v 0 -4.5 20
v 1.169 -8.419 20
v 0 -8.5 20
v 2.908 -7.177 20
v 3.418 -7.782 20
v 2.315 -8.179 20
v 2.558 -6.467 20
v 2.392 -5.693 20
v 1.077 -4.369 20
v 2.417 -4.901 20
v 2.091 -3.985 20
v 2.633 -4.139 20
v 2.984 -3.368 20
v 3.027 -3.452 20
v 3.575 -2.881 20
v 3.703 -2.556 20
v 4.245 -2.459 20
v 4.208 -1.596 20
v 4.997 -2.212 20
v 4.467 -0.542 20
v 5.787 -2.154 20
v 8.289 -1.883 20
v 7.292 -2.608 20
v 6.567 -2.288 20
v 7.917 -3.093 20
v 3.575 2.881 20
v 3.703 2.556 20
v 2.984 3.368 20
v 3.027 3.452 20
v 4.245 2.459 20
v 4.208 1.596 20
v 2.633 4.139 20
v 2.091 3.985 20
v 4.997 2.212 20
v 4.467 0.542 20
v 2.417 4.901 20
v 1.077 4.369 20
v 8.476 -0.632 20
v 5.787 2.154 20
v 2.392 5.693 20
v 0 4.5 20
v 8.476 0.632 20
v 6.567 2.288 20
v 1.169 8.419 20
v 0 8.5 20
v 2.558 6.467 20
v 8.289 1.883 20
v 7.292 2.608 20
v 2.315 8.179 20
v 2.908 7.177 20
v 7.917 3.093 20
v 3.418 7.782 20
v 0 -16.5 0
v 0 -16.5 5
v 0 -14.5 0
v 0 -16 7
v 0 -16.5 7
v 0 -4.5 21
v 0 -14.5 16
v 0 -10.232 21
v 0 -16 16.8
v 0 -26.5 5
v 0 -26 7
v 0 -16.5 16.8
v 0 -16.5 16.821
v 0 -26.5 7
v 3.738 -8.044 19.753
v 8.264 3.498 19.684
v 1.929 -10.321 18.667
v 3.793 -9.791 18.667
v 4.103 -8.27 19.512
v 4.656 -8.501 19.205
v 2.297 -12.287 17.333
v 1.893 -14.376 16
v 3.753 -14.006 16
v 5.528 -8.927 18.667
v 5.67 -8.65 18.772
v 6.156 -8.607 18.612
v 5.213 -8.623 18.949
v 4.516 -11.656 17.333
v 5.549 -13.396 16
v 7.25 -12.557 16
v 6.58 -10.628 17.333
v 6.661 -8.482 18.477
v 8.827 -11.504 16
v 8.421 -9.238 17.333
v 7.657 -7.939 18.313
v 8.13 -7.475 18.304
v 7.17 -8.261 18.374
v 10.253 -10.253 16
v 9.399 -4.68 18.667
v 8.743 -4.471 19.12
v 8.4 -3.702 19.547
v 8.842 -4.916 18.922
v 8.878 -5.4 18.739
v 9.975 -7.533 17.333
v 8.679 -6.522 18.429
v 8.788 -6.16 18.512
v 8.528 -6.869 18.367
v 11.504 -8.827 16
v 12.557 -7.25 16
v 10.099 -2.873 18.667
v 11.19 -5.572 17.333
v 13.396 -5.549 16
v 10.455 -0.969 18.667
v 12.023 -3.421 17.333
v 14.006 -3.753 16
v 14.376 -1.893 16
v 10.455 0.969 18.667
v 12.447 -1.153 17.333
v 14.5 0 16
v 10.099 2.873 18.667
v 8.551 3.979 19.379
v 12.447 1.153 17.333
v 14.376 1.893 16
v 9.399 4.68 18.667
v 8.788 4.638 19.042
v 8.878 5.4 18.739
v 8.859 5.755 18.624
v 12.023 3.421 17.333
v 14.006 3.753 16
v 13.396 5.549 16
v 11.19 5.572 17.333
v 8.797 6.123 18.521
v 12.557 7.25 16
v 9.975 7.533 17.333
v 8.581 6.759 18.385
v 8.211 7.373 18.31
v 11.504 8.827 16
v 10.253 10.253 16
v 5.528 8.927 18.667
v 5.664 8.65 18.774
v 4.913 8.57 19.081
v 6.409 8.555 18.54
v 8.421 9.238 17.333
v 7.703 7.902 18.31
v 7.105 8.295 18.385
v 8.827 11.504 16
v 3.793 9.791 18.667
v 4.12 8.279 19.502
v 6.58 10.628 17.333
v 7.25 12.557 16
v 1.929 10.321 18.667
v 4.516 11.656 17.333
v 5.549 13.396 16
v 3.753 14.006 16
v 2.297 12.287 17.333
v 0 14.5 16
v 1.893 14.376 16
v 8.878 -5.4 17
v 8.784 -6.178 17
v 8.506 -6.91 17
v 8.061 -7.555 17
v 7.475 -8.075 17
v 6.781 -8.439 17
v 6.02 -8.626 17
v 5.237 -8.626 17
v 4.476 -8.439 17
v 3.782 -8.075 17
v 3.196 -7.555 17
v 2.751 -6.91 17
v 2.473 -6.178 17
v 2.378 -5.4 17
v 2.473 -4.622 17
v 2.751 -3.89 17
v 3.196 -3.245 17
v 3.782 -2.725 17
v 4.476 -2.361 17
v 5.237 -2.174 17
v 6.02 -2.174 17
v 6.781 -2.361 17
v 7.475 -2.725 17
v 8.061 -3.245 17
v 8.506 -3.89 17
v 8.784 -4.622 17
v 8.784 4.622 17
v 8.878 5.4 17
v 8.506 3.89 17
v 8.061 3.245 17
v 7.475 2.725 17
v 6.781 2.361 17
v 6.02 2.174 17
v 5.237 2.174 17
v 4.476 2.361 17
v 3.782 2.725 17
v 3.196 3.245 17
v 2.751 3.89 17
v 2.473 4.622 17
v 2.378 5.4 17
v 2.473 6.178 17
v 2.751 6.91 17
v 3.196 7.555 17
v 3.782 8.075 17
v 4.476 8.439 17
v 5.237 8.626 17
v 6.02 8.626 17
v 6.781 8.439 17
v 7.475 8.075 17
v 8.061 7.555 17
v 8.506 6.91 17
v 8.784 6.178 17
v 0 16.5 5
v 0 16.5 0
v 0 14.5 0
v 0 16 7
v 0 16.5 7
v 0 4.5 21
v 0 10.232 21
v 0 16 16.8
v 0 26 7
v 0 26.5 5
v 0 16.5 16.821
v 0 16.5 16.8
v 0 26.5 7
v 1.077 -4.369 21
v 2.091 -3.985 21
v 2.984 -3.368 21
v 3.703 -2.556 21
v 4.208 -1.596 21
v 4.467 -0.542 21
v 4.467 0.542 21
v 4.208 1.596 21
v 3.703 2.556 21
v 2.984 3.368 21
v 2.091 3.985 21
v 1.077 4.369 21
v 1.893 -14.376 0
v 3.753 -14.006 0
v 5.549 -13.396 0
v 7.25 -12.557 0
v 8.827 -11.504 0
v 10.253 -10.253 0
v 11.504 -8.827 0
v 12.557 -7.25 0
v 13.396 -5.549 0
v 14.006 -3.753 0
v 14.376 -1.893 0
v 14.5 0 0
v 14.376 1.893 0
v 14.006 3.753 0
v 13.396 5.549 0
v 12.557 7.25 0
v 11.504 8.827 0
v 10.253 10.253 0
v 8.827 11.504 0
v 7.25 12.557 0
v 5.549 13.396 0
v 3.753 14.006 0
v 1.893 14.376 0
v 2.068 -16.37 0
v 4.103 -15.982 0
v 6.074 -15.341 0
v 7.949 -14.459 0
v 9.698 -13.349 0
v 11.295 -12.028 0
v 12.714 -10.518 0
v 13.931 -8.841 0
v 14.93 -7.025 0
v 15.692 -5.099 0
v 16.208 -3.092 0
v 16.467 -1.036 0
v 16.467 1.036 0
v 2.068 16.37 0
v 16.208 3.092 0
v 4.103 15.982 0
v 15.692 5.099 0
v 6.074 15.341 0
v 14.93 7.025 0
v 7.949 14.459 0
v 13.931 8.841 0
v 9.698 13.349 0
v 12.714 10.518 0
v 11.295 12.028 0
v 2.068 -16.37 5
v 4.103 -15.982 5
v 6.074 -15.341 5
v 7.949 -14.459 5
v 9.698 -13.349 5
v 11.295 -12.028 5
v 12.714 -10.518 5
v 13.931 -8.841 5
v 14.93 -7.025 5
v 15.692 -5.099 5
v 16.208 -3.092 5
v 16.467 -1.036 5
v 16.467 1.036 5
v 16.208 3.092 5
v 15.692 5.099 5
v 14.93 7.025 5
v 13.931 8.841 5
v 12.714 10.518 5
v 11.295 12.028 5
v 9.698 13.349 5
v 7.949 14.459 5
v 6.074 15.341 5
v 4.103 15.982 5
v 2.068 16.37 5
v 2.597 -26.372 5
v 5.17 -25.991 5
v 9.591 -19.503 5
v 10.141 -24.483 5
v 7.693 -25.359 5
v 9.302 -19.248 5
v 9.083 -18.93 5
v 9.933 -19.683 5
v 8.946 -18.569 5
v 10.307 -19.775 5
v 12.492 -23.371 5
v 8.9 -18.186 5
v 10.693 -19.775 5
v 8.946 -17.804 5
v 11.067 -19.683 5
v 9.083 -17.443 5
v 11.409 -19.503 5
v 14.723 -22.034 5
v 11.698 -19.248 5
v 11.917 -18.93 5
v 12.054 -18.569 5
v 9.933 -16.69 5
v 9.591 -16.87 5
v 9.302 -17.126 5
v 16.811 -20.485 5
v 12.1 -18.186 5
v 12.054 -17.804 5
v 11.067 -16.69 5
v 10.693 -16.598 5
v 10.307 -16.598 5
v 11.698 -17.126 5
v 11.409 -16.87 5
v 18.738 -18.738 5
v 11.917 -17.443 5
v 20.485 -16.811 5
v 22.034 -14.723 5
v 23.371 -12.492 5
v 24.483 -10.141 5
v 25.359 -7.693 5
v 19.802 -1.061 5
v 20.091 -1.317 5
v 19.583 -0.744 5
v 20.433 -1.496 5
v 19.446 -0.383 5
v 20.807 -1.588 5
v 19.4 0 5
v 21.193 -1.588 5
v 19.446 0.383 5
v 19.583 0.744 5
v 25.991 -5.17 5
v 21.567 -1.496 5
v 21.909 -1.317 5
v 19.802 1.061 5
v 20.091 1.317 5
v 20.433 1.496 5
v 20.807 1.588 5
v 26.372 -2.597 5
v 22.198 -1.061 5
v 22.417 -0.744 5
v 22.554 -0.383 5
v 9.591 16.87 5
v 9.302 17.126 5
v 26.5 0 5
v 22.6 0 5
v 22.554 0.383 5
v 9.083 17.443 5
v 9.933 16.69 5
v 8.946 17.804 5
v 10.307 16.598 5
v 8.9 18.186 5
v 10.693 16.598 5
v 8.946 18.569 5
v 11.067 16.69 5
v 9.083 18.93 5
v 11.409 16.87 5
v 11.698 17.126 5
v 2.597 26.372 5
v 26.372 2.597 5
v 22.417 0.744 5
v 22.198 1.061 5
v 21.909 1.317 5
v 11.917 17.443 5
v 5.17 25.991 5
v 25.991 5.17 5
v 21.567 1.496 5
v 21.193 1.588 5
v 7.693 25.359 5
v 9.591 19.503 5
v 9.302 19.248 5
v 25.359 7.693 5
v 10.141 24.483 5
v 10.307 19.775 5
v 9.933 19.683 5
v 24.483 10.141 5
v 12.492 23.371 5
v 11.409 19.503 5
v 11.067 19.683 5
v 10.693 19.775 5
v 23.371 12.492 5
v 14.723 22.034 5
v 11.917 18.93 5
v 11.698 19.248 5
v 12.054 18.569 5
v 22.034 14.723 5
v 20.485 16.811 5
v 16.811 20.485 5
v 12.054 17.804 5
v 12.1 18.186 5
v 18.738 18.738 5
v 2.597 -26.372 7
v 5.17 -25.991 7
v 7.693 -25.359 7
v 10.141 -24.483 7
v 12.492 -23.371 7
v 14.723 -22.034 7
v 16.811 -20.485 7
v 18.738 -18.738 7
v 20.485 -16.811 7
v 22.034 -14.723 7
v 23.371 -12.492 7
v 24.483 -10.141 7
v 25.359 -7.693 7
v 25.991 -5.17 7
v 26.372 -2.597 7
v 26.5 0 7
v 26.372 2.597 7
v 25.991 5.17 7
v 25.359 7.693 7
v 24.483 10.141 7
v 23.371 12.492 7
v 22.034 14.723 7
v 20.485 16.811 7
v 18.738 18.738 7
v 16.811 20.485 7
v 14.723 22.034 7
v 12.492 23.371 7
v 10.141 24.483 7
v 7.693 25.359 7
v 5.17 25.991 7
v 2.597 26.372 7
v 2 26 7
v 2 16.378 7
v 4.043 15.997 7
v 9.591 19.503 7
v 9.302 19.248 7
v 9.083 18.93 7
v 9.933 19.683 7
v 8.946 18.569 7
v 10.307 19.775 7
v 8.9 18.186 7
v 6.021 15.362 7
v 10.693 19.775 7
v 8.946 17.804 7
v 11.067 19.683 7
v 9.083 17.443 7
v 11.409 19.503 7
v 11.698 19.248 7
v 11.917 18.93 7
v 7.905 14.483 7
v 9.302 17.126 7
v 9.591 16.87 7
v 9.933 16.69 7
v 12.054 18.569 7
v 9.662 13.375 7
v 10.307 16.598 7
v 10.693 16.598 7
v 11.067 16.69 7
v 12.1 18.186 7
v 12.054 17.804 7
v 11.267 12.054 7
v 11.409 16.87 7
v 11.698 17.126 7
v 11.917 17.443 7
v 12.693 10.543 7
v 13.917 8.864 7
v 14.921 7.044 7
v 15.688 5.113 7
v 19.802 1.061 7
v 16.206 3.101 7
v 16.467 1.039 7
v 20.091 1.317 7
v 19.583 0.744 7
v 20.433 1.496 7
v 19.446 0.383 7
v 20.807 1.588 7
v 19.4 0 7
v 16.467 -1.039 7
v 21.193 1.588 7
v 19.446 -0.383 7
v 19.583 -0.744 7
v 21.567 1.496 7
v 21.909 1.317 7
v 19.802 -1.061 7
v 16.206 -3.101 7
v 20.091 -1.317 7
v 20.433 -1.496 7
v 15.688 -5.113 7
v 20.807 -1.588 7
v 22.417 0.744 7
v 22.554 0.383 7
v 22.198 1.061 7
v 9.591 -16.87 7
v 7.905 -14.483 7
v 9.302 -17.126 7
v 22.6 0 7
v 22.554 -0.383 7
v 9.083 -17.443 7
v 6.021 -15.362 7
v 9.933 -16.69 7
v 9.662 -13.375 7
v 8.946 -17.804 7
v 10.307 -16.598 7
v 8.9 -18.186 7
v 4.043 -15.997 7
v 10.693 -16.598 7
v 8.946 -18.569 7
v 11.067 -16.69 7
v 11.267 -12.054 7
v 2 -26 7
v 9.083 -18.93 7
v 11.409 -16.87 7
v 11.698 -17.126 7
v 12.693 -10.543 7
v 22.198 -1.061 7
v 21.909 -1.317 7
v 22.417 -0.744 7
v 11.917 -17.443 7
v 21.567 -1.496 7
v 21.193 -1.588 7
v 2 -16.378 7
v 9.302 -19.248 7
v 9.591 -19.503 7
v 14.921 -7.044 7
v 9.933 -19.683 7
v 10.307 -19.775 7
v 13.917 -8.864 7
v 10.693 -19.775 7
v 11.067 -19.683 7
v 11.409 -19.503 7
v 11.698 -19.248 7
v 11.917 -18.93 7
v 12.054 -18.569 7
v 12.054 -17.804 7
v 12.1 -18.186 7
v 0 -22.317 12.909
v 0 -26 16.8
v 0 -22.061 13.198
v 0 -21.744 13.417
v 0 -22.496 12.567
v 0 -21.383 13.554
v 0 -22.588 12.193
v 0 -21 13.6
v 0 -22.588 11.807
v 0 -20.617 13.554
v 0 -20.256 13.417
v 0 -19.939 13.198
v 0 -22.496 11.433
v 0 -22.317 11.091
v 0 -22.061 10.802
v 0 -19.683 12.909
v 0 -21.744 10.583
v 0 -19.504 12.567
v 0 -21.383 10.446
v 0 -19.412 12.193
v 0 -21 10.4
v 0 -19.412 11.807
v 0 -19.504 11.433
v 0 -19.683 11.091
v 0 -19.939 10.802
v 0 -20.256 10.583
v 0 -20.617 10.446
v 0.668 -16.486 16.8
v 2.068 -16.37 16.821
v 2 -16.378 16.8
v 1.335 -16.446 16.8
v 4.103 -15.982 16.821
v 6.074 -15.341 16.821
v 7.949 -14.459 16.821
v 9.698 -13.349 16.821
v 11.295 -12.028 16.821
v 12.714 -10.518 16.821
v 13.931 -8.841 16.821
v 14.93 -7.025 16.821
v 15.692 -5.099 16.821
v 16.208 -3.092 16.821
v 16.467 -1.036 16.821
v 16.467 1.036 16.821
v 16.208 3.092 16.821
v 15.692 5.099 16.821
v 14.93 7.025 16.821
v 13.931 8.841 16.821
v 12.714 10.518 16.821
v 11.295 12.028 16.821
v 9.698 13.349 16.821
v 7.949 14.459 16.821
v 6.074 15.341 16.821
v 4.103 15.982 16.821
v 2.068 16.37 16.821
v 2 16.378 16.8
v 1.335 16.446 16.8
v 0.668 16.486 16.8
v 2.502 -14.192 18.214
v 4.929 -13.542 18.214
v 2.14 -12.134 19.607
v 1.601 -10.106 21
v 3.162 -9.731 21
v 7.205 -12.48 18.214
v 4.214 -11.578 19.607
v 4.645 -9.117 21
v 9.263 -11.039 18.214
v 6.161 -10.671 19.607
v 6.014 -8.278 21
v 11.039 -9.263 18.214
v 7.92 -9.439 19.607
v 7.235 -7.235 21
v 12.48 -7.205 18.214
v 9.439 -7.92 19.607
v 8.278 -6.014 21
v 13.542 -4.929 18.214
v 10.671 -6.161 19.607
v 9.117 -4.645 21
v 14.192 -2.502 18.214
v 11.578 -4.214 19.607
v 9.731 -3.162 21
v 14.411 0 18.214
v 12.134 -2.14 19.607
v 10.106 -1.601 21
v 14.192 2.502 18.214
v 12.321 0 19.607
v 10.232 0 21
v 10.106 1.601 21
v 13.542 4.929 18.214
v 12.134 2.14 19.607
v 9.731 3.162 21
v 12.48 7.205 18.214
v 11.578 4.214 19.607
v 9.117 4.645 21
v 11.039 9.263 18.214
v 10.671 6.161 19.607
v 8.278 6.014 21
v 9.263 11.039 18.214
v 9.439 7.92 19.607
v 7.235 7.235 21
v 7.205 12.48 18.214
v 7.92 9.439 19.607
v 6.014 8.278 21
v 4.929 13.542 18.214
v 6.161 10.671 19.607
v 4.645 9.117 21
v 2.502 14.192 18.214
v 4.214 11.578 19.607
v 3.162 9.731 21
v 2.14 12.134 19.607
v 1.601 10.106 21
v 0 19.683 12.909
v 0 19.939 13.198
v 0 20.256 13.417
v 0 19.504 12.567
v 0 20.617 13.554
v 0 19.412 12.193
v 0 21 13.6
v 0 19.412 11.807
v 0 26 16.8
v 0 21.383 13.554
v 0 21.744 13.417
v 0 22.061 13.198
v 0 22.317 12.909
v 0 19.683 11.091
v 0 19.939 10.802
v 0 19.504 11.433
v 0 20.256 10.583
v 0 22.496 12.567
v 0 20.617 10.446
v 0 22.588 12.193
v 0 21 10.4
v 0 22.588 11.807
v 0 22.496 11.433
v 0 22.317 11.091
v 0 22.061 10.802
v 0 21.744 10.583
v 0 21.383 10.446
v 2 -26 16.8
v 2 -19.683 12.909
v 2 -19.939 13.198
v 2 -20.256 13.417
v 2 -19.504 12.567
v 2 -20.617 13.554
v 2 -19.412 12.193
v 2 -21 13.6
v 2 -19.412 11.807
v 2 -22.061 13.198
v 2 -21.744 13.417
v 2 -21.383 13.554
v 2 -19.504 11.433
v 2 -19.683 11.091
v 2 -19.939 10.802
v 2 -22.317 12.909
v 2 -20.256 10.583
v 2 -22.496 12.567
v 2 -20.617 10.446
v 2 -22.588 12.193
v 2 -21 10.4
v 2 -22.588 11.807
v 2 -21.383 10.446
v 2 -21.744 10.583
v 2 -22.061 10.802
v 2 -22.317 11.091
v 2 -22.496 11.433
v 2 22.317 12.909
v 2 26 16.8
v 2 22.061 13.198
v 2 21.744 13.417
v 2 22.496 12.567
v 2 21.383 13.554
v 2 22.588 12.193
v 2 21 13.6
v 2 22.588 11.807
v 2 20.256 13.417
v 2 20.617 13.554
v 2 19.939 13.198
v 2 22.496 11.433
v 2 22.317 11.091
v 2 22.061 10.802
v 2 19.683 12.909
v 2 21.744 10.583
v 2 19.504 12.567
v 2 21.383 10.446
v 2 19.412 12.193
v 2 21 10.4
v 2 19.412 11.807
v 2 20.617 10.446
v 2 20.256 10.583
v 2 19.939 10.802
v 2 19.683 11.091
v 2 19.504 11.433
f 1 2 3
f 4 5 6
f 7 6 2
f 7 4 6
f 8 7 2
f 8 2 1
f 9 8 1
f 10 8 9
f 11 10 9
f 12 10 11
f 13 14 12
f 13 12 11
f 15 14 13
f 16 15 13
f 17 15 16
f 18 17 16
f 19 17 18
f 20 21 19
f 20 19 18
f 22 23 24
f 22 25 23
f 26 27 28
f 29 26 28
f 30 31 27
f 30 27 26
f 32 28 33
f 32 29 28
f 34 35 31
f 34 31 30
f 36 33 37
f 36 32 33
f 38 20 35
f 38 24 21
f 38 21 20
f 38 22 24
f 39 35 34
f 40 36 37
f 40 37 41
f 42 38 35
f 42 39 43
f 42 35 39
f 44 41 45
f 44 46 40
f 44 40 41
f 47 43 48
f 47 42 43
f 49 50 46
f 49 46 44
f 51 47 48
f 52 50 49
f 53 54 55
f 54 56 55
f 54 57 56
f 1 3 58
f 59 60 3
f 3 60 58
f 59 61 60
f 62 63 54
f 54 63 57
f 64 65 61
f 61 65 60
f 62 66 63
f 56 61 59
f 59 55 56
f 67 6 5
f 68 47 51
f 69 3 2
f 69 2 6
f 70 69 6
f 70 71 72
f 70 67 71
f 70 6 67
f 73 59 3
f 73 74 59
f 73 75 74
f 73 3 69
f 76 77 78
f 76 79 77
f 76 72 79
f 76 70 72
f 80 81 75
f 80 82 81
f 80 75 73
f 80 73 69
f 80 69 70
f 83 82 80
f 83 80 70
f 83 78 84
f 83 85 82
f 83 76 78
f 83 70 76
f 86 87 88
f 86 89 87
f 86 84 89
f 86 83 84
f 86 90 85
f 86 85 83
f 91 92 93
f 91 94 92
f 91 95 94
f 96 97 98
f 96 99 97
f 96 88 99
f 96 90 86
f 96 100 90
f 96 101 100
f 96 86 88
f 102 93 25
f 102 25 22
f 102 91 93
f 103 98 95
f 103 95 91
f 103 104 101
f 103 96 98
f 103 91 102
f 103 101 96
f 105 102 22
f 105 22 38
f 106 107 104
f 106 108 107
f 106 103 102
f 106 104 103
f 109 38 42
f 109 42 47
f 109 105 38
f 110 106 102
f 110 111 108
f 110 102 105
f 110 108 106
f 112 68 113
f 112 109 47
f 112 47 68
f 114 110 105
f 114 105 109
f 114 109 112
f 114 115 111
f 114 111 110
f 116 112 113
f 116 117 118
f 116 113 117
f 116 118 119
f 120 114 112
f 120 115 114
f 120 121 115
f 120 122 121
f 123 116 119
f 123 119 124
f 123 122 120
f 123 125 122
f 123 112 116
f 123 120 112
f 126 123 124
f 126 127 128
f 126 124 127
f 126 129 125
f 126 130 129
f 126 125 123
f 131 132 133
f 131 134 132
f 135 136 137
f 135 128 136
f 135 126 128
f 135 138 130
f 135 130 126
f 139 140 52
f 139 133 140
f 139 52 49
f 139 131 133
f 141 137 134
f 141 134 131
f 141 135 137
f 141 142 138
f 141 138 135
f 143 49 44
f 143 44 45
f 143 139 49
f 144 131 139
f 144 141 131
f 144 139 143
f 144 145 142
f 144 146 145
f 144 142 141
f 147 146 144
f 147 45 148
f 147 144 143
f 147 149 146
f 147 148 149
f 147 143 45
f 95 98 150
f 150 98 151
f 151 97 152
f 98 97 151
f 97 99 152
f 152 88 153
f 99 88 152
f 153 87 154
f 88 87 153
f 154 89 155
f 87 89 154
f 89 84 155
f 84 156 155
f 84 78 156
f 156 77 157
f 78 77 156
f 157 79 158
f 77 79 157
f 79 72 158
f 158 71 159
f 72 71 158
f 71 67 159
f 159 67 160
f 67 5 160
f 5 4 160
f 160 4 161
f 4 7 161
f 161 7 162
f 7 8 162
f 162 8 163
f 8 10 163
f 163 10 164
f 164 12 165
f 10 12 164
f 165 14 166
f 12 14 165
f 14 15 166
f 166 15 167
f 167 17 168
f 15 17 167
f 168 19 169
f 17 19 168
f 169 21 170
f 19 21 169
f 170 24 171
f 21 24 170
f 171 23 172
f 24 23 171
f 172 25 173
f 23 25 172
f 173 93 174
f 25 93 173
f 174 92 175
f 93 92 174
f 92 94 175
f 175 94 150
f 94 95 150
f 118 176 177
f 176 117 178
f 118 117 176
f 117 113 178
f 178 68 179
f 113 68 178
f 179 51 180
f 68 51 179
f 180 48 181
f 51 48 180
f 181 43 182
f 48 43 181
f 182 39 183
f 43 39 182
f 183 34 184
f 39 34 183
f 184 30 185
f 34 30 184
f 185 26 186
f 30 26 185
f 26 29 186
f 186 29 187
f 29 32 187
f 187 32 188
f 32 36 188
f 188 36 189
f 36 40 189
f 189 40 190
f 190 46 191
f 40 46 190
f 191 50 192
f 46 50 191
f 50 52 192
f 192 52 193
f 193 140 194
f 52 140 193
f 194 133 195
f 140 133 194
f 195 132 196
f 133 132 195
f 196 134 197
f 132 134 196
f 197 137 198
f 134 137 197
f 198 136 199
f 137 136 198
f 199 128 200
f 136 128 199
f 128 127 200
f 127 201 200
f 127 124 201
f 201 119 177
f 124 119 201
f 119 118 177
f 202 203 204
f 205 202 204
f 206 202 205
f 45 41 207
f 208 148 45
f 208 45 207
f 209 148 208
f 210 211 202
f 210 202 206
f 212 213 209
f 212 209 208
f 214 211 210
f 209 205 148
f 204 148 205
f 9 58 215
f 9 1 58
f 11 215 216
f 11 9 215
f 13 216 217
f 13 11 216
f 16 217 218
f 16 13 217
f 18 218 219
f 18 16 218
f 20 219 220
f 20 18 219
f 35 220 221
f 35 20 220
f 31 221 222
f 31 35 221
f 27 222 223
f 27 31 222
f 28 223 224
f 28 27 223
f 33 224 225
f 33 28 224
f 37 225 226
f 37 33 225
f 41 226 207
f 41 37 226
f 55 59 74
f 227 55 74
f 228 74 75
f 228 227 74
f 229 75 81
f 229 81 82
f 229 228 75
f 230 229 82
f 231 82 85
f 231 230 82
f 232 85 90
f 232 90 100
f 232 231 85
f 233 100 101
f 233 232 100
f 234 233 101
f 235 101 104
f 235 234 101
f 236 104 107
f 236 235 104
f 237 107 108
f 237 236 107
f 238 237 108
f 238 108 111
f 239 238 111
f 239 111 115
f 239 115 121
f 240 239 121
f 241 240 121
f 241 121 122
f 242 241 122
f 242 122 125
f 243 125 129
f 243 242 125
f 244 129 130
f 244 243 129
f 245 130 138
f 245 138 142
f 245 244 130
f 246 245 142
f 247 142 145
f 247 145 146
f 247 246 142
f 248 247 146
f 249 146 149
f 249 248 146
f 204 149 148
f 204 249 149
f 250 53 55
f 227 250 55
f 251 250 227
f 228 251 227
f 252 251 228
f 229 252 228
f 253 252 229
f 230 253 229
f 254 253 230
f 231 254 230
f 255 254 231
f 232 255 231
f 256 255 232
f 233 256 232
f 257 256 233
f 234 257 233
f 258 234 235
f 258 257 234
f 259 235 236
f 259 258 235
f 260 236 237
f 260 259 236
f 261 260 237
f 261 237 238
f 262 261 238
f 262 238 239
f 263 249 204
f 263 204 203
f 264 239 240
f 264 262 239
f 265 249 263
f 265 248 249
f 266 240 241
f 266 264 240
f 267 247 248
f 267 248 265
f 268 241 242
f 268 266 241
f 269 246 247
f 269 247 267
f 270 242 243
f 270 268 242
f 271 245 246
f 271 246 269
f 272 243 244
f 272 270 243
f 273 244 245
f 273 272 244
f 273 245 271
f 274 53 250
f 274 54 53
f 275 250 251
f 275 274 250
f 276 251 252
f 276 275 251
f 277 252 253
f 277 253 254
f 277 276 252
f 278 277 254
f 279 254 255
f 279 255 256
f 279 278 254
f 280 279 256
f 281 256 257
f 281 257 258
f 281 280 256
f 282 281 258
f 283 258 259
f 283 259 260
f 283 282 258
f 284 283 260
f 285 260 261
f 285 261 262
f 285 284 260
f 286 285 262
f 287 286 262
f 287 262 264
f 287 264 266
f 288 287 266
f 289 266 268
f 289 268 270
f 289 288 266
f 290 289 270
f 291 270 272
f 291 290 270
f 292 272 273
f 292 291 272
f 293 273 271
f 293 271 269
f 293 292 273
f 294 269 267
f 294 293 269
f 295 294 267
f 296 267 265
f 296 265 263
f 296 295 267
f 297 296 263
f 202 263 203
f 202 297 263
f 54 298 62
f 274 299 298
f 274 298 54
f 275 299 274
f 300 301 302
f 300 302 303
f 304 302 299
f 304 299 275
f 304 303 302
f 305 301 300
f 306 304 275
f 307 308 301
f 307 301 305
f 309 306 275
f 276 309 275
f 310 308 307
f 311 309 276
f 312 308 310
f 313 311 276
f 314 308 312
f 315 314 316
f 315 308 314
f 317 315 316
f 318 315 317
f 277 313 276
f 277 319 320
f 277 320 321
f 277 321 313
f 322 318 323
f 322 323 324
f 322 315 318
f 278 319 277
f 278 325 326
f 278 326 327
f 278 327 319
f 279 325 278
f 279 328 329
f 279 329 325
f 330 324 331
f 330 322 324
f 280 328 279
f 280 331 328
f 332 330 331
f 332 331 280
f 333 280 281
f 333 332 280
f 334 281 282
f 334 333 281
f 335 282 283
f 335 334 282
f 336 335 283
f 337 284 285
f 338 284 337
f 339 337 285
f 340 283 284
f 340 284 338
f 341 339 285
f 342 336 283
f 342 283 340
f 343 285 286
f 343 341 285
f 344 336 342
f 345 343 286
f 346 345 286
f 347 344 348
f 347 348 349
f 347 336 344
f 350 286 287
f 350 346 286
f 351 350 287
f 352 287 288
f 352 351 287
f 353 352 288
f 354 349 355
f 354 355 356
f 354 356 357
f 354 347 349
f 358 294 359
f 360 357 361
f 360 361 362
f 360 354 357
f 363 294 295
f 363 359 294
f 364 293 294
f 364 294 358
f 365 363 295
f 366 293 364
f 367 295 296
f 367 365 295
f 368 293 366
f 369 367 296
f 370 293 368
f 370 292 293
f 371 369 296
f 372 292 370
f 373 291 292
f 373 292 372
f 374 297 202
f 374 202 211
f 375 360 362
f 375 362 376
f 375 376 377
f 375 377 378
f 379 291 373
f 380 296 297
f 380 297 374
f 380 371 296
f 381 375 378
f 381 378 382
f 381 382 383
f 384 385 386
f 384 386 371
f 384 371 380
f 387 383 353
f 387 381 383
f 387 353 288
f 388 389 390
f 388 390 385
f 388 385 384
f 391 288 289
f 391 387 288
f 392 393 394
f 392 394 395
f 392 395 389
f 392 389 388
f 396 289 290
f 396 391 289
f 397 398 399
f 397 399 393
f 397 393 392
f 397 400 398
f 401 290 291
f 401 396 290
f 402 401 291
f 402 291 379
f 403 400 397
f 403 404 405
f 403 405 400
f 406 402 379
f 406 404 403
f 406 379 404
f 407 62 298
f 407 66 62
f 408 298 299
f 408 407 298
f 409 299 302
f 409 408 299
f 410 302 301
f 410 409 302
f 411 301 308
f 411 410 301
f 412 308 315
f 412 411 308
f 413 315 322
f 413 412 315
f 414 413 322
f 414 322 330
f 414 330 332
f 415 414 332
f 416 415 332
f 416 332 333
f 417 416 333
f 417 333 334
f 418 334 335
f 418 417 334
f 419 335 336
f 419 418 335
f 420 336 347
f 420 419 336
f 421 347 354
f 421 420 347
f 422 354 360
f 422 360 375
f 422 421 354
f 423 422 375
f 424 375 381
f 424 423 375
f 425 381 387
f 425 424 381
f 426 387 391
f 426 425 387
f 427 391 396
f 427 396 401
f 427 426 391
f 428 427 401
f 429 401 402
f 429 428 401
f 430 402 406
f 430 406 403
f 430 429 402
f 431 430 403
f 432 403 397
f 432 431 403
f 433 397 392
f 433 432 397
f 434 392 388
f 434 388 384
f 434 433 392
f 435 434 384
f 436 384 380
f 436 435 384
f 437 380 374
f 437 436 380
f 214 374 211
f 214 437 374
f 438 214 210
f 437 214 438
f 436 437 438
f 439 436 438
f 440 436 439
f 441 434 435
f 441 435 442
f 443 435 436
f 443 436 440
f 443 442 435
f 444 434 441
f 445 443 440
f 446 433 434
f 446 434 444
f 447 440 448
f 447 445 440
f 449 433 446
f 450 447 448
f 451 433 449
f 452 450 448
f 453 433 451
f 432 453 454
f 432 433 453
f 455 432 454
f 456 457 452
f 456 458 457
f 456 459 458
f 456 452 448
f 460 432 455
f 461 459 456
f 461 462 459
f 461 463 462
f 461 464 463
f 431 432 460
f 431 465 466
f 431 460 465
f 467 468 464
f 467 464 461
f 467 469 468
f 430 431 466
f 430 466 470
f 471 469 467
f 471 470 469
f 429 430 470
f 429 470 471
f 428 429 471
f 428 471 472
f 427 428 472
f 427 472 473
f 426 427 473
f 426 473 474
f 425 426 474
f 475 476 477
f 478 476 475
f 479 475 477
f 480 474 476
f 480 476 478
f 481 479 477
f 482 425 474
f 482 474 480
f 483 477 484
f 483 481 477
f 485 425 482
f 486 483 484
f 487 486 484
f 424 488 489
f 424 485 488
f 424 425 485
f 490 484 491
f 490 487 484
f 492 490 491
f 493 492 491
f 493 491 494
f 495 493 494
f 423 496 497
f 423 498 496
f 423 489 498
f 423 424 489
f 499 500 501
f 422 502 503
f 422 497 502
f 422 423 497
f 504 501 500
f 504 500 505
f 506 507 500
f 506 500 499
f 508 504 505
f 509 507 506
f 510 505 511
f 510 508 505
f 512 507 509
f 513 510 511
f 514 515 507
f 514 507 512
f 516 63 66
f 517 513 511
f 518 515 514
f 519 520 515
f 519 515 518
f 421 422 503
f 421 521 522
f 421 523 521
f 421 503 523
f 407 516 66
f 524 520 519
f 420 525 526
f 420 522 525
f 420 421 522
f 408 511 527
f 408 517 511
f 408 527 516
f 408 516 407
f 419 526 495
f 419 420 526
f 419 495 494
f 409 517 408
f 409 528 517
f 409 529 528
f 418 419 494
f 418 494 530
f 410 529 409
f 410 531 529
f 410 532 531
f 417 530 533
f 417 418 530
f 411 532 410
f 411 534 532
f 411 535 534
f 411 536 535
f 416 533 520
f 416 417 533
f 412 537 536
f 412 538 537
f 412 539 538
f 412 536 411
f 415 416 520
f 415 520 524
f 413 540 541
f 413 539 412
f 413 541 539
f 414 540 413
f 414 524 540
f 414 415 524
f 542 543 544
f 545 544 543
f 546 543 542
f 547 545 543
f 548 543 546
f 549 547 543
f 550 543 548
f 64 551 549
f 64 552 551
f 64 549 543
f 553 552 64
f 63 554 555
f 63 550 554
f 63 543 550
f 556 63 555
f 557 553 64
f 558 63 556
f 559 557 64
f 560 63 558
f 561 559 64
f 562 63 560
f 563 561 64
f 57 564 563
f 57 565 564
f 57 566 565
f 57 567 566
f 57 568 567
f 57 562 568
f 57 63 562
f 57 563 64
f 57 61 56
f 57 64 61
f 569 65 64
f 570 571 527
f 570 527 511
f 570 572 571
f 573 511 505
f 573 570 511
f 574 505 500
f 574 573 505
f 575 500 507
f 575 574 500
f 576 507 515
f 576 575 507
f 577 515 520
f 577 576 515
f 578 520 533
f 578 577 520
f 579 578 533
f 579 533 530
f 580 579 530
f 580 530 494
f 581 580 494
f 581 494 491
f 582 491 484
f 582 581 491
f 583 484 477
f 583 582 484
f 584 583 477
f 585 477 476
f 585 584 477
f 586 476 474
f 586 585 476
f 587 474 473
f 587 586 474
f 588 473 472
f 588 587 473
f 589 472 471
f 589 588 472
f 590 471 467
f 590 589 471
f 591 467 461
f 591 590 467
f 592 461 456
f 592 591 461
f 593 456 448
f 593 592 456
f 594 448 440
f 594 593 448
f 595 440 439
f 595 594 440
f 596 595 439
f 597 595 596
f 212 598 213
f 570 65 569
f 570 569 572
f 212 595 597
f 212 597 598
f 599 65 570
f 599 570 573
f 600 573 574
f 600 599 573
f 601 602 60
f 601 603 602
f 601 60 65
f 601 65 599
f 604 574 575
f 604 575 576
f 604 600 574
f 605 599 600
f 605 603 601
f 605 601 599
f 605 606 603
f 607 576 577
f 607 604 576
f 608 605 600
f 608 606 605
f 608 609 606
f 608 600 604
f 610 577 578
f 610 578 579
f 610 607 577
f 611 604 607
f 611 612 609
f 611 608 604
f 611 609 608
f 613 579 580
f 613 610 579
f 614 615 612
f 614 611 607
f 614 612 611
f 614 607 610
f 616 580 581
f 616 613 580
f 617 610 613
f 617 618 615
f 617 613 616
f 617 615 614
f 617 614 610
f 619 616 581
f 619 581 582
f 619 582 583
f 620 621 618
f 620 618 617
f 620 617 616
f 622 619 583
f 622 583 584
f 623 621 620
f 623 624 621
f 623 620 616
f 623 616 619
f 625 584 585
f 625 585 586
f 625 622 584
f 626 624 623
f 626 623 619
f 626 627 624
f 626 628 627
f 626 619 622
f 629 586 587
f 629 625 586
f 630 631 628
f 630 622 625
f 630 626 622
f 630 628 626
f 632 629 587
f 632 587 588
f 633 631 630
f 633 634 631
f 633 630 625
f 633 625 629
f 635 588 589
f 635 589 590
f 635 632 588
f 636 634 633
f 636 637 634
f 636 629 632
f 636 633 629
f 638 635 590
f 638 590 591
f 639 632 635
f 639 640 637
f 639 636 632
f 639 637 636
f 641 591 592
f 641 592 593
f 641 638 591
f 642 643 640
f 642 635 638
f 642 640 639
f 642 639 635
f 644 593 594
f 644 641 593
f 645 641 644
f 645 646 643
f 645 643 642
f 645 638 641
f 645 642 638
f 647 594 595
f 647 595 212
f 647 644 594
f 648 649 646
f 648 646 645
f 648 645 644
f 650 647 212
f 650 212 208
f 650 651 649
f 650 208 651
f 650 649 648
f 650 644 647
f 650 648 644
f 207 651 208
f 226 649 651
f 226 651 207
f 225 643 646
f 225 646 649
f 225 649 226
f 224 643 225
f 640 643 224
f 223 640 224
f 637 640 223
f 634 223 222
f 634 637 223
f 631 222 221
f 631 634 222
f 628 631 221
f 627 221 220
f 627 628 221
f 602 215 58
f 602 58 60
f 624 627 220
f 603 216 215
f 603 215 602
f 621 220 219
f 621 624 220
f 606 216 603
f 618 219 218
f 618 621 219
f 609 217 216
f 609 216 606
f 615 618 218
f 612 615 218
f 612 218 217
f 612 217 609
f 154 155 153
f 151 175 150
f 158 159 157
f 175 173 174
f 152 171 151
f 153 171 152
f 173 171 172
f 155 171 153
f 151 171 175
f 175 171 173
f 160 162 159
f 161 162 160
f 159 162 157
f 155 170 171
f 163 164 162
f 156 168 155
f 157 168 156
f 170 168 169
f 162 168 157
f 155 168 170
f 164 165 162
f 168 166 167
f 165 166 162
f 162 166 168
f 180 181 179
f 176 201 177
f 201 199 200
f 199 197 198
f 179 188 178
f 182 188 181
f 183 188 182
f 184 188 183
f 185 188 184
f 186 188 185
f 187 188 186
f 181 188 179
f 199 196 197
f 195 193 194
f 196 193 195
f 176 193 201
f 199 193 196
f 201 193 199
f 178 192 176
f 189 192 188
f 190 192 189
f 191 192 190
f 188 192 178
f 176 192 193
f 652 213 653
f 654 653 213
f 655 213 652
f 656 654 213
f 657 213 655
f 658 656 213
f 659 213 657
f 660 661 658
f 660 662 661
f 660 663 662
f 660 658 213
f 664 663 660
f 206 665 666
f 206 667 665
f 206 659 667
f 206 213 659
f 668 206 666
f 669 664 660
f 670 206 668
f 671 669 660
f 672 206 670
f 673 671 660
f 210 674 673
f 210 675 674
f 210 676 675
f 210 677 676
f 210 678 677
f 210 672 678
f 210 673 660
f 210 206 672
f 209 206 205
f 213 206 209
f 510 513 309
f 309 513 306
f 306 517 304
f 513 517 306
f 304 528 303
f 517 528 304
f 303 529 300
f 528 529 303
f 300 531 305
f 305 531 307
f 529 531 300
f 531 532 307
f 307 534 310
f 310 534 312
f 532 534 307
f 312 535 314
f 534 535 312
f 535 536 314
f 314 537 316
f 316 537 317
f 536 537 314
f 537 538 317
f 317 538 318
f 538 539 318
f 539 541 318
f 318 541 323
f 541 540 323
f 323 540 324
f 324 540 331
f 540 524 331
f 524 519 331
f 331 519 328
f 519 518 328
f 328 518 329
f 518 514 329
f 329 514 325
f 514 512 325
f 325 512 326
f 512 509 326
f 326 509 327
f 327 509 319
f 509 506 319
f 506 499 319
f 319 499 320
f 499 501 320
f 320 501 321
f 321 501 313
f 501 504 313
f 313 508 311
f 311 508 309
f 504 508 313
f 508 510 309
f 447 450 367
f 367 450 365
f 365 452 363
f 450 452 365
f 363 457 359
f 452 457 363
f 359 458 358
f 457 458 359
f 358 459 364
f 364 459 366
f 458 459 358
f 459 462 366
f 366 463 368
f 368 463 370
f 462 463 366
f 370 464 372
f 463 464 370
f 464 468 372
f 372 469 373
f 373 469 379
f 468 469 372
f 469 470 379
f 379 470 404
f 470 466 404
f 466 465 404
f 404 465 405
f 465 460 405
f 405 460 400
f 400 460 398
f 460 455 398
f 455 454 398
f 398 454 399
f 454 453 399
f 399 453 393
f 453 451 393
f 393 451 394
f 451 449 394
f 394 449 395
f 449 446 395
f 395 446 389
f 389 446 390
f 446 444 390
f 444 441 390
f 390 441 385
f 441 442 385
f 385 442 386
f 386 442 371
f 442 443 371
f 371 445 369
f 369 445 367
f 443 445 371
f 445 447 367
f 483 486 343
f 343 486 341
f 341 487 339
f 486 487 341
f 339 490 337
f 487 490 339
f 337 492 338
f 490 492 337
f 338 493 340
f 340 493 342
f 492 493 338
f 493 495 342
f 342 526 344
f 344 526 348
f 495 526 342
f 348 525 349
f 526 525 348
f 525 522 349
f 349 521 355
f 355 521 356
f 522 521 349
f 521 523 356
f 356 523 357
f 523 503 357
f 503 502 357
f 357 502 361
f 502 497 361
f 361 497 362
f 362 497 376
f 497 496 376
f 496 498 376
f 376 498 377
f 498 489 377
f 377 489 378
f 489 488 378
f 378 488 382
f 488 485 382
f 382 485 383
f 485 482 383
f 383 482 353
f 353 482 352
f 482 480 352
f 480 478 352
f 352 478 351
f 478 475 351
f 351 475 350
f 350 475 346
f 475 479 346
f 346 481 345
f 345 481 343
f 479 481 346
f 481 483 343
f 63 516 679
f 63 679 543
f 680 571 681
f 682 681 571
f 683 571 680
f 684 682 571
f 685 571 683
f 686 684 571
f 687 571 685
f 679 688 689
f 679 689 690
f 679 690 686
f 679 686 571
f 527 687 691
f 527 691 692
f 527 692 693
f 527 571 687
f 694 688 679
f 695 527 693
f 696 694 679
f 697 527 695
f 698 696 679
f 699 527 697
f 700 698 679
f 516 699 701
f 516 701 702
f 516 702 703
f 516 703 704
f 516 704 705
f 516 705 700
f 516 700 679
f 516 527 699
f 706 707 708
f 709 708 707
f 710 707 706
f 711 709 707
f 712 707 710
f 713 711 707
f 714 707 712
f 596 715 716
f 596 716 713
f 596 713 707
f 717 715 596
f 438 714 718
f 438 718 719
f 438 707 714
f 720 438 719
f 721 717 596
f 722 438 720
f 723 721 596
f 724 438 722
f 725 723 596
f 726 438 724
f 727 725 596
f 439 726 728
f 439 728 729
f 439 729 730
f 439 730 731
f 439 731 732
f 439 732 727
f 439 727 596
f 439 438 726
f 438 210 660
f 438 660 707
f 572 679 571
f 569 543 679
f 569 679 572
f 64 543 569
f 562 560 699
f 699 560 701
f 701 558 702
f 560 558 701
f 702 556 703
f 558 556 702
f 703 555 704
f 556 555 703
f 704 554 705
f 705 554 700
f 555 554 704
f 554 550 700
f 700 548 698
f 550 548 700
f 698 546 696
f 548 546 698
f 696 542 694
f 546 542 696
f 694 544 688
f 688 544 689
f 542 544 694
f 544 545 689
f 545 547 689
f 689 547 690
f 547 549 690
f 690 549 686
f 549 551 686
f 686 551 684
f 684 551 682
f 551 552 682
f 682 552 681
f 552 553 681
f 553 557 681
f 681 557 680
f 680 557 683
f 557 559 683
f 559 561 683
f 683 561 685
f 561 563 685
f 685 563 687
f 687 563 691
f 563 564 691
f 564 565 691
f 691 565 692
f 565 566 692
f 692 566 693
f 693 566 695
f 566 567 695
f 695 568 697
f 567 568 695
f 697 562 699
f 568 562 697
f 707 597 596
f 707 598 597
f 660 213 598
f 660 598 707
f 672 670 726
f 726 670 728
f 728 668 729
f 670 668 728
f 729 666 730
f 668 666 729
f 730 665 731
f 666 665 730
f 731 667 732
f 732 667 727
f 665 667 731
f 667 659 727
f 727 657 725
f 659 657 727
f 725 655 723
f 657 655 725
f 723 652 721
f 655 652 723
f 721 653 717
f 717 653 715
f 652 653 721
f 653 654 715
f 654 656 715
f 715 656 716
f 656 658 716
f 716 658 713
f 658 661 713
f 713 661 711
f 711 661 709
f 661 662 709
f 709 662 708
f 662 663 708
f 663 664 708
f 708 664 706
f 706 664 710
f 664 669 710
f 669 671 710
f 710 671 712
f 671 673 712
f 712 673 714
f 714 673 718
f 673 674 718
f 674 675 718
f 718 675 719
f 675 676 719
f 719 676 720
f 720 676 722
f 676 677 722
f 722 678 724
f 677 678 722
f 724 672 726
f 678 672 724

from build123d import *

# Parameters (mm, degrees)
REVOLUTION_ANGLE = -180
SKETCH001_R      = 1.6
POCKET_DEPTH     = 5
SKETCH002_R      = 3.25
PAD_DEPTH        = 3
SKETCH003_W      = 2
SKETCH003_H      = 10
PAD001_DEPTH     = 9.8
SKETCH004_R      = 1.6
POCKET001_DEPTH  = 5


with BuildPart() as part:
    # Sketch → Revolution (revolve, symmetric)
    with BuildSketch(Plane.XZ) as revolution_sk:
        Polygon((4.5, 20), (8.5, 20), (14.5, 16), (14.5, 0), (16.5, 0), (16.5, 5), (26.5, 5), (26.5, 7), (16.5, 7), (16.5, 16.821367), (10.232051, 21), (4.5, 21), align=None)
    revolve(axis=Axis((0, 0, 0), (0, 0, 1)), revolution_arc=REVOLUTION_ANGLE / 2)
    revolve(revolution_sk.sketch, axis=Axis((0, 0, 0), (0, 0, -1)), revolution_arc=REVOLUTION_ANGLE / 2)

    # Sketch001 (on Face8 of Revolution) → Pocket (cut)
    with BuildSketch(Plane(origin=(0, 0, 7), x_dir=(-1, 0, 0), z_dir=(0, 0, 1))):
        with Locations((-21, 0)):
            Circle(SKETCH001_R)
        with Locations((-10.5, 18.186533)):
            Circle(SKETCH001_R)
        with Locations((-10.5, -18.186533)):
            Circle(SKETCH001_R)
    extrude(amount=-POCKET_DEPTH, mode=Mode.SUBTRACT)

    # Sketch002 (on Face1 of Pocket) → Pad (join)
    with BuildSketch(Plane(origin=(0, 0, 20), x_dir=(1, 0, 0), z_dir=(0, 0, -1))):
        with Locations((5.628499, 5.4)):
            Circle(SKETCH002_R)
        with Locations((5.628499, -5.4)):
            Circle(SKETCH002_R)
    extrude(amount=PAD_DEPTH)

    # Sketch003 (on Face13 of Pad) → Pad001 (join)
    with BuildSketch(Plane(origin=(0, 0, 7), x_dir=(-1, 0, 0), z_dir=(0, 0, 1))):
        with Locations((-1, 21)):
            Rectangle(SKETCH003_W, SKETCH003_H)
        with Locations((-1, -21)):
            Rectangle(SKETCH003_W, SKETCH003_H)
    extrude(amount=PAD001_DEPTH)

    # Sketch004 (on Face21 of Pad001) → Pocket001 (cut)
    with BuildSketch(Plane(origin=(0, 0, 0), x_dir=(0, 0, -1), z_dir=(-1, 0, 0))):
        with Locations((-12, -21)):
            Circle(SKETCH004_R)
        with Locations((-12, 21)):
            Circle(SKETCH004_R)
    extrude(amount=-POCKET001_DEPTH, mode=Mode.SUBTRACT)


solid = part.part
